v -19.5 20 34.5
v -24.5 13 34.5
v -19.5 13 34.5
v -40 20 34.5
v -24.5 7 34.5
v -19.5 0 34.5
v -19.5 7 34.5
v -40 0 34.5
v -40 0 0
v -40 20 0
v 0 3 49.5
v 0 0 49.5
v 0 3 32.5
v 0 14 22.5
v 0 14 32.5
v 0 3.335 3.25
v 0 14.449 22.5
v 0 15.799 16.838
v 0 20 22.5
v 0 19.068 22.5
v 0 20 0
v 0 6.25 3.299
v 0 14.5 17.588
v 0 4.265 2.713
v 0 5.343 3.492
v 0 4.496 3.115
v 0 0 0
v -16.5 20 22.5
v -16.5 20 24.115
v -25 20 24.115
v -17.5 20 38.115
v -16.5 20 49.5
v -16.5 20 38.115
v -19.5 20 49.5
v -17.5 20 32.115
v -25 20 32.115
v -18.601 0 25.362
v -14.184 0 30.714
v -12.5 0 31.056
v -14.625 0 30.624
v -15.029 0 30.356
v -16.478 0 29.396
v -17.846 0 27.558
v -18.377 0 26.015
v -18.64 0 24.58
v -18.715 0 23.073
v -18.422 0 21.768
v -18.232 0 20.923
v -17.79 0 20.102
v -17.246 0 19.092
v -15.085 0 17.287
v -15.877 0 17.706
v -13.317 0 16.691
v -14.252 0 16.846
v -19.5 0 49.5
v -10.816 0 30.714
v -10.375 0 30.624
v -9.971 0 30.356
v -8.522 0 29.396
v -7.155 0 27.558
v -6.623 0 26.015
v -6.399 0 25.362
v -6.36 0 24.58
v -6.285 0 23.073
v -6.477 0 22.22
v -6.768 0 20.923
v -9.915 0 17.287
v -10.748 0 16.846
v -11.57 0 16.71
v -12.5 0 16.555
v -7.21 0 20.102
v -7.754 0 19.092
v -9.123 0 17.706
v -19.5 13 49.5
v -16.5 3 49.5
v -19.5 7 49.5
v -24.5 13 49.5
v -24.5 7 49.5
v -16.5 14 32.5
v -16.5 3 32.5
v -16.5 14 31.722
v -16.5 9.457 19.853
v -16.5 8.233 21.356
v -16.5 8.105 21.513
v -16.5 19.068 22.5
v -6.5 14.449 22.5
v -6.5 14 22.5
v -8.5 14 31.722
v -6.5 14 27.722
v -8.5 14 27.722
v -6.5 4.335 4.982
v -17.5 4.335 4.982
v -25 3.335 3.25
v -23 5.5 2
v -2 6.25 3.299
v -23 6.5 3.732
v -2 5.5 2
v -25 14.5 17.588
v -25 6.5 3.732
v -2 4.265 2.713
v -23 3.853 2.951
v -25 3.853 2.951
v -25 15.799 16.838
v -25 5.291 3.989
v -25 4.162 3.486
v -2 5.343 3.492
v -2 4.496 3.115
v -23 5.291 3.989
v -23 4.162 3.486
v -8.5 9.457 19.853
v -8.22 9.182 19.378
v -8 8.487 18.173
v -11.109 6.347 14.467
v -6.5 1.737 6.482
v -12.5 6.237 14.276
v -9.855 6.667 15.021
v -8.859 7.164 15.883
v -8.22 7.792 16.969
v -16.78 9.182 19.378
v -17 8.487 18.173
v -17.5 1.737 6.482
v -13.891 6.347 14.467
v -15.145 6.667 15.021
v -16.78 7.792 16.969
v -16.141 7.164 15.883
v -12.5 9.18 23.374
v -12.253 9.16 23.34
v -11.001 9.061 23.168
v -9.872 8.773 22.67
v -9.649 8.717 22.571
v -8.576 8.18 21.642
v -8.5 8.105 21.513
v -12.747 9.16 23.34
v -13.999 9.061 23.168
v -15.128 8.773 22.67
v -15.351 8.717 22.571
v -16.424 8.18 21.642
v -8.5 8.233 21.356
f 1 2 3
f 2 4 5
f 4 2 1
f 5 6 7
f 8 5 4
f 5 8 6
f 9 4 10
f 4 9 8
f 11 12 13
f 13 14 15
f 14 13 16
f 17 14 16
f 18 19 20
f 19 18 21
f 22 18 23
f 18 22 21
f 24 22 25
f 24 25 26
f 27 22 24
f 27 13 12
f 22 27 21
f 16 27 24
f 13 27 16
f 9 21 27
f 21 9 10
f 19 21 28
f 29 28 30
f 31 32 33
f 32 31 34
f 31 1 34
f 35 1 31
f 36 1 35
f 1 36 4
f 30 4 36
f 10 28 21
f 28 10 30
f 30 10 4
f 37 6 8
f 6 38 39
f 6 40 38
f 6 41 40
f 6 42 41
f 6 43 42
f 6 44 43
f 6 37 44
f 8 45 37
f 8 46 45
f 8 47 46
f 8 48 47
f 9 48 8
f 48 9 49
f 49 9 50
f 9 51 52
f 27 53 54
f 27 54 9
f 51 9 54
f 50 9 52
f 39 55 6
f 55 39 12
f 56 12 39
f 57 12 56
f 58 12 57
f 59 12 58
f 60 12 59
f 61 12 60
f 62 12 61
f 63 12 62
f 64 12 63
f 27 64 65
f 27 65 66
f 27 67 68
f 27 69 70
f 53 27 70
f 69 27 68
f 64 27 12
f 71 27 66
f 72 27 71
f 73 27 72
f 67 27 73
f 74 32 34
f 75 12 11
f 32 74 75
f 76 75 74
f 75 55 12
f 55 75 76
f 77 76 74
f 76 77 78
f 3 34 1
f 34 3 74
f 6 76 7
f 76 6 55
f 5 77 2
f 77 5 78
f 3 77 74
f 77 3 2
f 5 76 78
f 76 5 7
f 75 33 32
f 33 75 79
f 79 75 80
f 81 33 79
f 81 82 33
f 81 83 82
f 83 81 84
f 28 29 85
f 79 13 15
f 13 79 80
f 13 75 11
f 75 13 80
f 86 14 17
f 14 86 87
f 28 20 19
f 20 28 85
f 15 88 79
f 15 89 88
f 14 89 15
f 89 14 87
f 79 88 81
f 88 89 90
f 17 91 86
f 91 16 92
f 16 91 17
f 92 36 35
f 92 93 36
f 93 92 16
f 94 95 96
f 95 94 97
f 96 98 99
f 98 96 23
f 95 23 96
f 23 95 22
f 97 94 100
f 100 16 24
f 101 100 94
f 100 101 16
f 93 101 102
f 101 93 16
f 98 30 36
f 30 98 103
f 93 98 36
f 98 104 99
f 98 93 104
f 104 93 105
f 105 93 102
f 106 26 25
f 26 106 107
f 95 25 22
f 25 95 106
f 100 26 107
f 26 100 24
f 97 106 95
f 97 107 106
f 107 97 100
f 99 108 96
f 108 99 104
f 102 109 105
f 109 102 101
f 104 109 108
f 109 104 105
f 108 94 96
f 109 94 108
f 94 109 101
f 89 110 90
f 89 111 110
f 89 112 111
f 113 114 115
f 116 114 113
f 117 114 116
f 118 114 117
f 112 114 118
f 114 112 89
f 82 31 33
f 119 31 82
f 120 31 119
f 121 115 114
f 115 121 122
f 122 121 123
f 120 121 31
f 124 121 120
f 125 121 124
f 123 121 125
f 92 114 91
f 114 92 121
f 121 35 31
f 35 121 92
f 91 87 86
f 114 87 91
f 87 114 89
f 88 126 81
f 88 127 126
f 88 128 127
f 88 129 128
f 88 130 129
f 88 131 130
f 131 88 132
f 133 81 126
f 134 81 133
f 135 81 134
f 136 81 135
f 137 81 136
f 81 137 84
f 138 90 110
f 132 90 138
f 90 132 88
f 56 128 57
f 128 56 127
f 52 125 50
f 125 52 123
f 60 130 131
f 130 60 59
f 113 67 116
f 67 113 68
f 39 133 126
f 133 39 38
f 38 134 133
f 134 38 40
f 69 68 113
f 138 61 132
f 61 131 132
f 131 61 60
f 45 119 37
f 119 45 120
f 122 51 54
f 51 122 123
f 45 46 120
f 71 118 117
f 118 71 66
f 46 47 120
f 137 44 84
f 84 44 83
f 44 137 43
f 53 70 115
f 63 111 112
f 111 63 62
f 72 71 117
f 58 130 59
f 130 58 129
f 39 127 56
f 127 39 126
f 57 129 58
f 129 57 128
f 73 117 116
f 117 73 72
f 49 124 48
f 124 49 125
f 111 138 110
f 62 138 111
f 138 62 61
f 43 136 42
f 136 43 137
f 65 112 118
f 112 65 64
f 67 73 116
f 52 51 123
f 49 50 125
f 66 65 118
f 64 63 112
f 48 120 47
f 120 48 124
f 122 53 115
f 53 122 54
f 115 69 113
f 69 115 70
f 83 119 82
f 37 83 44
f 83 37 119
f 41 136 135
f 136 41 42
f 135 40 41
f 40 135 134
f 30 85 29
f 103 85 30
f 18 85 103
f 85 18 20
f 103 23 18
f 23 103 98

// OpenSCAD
module picam(){
    difference(){
        cube([24,25,5]);
        
        translate([2,2,2]){
            cylinder(r=1, h=3, $fn=10);
        }
        translate([2,23,2]){
            cylinder(r=1, h=3, $fn=10);
        }
        translate([14.5,2,2]){
            cylinder(r=1, h=3, $fn=10);
        }
        translate([14.5,23,2]){
            cylinder(r=1, h=3, $fn=10);
        }
    }
    translate([2,6.5,5]){
        cube([18, 12,3.5]);
    }
    translate([15,12.5,8.5]){
        cylinder(r=4, h=20, $fn=10);
    }
}

module picamslider(){
    difference(){
        cube([24+15,25,2.5]);
        
        translate([0,2,0]){
            rotate(a=[90,0,0]){
                cylinder(r=1.5, h=2, $fn=10);
            }
        }
        translate([0,25,0]){
            rotate(a=[90,0,0]){
                cylinder(r=2, h=2, $fn=10);
            }
        }
    }
    translate([2,6.5,2.5]){
        cube([22+15, 11,3]);
    }
    translate([15,8.5,5.5]){
        cube([9+15, 8,2]);
    }
   translate([15 +0.5,12.5,5.5]){
        cylinder(r=4.5, r2=8, h=20, $fn=20);
    }
    
    // cable socket
    translate([18,0,-1.5]){
        cube([6+15,25,1.5]);
    }
}

module bracket() {
    difference() {
        union() {
            cube([34.5,20,40]);
            translate([34.5,0,0]){
                cube([15, 20, 19.5]);
            }
            translate([34.5,7,19.5]){
                cube([15, 6, 5]);
            }

        }
        translate([32.5,3,0]){
                cube([17, 14, 16.5]);
         }
         
                     
         // cable
         translate([28.5-6,14,0]){
            cube([44, 10, 16.5]);
         }
    }
}

module full(){
rotate(a=[0,-90,0]){
difference(){
    bracket();
    translate([3-1,6.5-1,0]){
        rotate(a=[90,0,30]){
            picamslider();
        }
    }
}
}
}



//picamslider();
full();

//bracket();
